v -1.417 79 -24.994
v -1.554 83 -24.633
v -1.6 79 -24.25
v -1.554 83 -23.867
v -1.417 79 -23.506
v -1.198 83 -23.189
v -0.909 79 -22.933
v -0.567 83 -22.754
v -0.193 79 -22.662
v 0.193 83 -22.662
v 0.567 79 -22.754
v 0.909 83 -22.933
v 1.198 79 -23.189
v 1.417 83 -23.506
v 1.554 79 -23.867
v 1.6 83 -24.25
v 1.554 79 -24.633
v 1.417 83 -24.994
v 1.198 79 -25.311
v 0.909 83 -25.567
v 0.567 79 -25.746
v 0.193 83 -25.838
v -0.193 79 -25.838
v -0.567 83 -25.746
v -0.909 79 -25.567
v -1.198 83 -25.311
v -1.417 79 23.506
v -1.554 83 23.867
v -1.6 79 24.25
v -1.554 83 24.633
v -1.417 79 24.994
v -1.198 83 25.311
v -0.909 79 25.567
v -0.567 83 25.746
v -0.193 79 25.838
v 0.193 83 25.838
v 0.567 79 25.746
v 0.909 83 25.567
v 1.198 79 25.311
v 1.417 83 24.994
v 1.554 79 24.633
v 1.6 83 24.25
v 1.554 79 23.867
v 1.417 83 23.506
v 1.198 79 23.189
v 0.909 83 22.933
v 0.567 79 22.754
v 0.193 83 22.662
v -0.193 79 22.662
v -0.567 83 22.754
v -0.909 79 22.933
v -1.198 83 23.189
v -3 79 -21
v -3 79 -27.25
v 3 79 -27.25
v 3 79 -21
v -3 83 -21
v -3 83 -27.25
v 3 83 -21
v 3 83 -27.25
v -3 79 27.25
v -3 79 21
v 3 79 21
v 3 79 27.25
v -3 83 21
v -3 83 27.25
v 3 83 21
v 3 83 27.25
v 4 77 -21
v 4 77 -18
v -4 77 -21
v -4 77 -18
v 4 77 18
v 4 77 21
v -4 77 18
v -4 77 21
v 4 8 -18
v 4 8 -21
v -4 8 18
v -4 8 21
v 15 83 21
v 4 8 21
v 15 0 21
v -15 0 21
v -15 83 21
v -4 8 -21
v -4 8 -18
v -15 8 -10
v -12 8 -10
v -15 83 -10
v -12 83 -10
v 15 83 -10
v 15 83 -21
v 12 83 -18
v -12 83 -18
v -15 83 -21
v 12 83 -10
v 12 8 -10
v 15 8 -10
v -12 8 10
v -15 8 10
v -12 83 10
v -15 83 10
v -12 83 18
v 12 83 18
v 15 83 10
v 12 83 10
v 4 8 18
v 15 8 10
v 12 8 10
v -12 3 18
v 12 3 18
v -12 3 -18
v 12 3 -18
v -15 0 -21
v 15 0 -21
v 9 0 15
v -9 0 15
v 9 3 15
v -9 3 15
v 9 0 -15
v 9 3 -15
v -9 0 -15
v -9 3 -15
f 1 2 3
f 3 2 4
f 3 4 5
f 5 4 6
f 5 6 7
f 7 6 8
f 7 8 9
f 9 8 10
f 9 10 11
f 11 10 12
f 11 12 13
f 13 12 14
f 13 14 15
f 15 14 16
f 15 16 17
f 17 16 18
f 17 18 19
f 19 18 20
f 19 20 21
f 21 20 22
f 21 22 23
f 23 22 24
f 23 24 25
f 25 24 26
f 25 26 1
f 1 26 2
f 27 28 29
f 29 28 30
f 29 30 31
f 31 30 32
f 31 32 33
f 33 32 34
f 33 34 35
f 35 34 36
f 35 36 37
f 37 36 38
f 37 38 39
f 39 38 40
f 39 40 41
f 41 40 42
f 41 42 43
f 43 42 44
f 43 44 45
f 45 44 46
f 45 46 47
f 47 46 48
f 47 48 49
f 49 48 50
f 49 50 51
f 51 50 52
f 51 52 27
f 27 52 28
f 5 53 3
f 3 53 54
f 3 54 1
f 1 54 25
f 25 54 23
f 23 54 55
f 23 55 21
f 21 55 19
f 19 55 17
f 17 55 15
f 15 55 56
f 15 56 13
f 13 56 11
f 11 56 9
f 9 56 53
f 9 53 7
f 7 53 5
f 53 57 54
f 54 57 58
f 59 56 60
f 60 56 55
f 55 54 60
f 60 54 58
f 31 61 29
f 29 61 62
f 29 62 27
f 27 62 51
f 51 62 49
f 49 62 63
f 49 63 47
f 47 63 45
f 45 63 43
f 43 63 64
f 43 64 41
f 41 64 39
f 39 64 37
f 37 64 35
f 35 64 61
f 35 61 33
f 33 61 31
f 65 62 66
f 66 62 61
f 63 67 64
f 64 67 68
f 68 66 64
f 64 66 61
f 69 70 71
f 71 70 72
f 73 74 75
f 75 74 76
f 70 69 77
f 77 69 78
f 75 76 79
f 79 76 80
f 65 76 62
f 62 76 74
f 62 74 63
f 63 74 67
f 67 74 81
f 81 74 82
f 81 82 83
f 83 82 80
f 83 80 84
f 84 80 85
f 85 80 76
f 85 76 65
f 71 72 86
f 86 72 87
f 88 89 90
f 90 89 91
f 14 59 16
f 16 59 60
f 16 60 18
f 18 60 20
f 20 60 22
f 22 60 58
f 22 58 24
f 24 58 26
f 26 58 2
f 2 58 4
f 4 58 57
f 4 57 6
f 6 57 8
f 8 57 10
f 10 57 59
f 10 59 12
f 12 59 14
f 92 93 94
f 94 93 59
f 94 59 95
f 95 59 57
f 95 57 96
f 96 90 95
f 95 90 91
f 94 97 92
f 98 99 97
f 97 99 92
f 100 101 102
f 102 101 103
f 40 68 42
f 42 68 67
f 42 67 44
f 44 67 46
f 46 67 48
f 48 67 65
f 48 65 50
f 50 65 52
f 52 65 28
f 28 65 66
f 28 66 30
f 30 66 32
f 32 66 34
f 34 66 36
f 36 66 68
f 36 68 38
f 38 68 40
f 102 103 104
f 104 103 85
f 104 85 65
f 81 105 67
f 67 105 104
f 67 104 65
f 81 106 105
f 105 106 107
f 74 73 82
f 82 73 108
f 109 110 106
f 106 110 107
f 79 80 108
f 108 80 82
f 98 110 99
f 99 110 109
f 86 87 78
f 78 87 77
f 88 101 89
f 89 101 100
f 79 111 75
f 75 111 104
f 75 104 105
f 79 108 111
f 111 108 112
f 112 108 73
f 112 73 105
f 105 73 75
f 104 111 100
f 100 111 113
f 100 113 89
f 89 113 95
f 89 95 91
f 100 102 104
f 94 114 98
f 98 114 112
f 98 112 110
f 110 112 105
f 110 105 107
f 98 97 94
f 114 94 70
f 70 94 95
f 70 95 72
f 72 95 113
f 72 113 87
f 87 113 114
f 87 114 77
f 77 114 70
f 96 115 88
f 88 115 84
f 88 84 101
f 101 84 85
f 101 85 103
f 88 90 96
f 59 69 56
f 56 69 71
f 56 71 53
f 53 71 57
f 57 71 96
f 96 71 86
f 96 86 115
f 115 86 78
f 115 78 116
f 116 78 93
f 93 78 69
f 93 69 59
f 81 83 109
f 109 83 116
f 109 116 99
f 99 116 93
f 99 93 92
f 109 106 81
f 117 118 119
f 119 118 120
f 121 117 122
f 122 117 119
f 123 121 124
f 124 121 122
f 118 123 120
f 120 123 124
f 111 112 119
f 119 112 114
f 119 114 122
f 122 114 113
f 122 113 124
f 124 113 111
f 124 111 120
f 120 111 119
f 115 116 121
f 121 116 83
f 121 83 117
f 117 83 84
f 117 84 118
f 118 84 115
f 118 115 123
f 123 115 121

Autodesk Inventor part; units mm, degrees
ref_plane "YZ Plane" through (0, 0, 0) normal (1, 0, 0) x (0, 1, 0)
ref_plane "XZ Plane" through (0, 0, 0) normal (0, 1, 0) x (-1, 0, 0)
ref_plane "XY Plane" through (0, 0, 0) normal (0, 0, 1) x (1, 0, 0)
sketch "Szkic1" plane through (0, 0, 0) normal (0, 1, 0) x (-1, 0, 0)
  line L0 (12, 18) -> (-12, 18)
  line L1 (-12, 18) -> (-12, -18)
  line L2 (-12, -18) -> (12, -18)
  line L3 (12, -18) -> (12, 18)
  line L4 (12, 18) -> (-12, -18) construction
  line L5 (-12, 18) -> (12, -18) construction
  line L6 (15, 21) -> (-15, 21)
  line L7 (-15, 21) -> (-15, -21)
  line L8 (-15, -21) -> (15, -21)
  line L9 (15, -21) -> (15, 21)
  line L10 (15, 21) -> (-15, -21) construction
  line L11 (-15, 21) -> (15, -21) construction
  line L12 (9, 15) -> (-9, 15)
  line L13 (-9, 15) -> (-9, -15)
  line L14 (-9, -15) -> (9, -15)
  line L15 (9, -15) -> (9, 15)
  line L16 (9, 15) -> (-9, -15) construction
  line L17 (-9, 15) -> (9, -15) construction
  point P0 (0, 0)
  dimension "d0" = 24
  dimension "d1" = 36
  dimension "d2" = 42
  dimension "d3" = 30
  dimension "d4" = 18
  dimension "d5" = 30
extrude "Wyciągnięcie proste1" add sketch "Szkic1" along normal blind 3 contours L3 L2 L1 L0
extrude "Wyciągnięcie proste2" add sketch "Szkic1" along normal blind 8 contours L9 L8 L7 L6
sketch "Szkic2" plane through (0, 8, 0) normal (0, 1, 0) x (1, 0, 0)
  line L0 (-15, 21) -> (-15, -21) projected
  line L1 (-12, -18) -> (12, -18) projected
  line L2 (-15, -21) -> (-4, -21)
  line L3 (-4, -21) -> (-4, -18)
  line L4 (-4, -18) -> (-15, -18)
  line L5 (-15, -18) -> (-15, -21)
  line L6 (-12, -18) -> (-15, -18)
  line L7 (-15, -18) -> (-15, -10)
  line L8 (-15, -10) -> (-12, -10)
  line L9 (-12, -10) -> (-12, -18)
  line L10 (-15, -21) -> (-15, -10)
  line L11 (0, 0) -> (-18.1992, 0)
  line L12 (-15, 21) -> (-4, 21)
  line L13 (-4, 21) -> (-4, 18)
  line L14 (-4, 18) -> (-15, 18)
  line L15 (-15, 10) -> (-12, 10)
  line L16 (-12, 10) -> (-12, 18)
  line L17 (4, 18) -> (15, 18)
  line L18 (4, 21) -> (4, 18)
  line L19 (15, 21) -> (4, 21)
  line L20 (15, 21) -> (15, 10)
  line L21 (15, 10) -> (12, 10)
  line L22 (12, 10) -> (12, 18)
  line L23 (12, -10) -> (12, -18)
  line L24 (15, -10) -> (12, -10)
  line L25 (4, -18) -> (15, -18)
  line L26 (15, -21) -> (4, -21)
  line L27 (4, -21) -> (4, -18)
  line L28 (15, -21) -> (15, 21) projected
  line L29 (15, -21) -> (15, -10)
  point P0 (-4, -19.5)
  point P1 (4, 19.5)
  dimension "d10" = 11
  dimension "d11" = 8
  dimension "d12" = 18.1992
  dimension "d15" = 360
extrude "Wyciągnięcie proste3" add sketch "Szkic2" along normal blind 75
sketch "Szkic3" plane through (-4, 8, 21) normal (1, 0, 0) x (0, 0, -1)
  line L0 (0, 75) -> (3, 75) projected
  line L1 (3, -5) -> (3, 75) projected
  line L2 (0, 75) -> (3, 75)
  line L3 (3, 75) -> (3, 69)
  line L4 (3, 69) -> (0, 69)
  line L5 (0, 69) -> (0, 75)
  line L6 (21, 73.1209) -> (21, -14.9491)
  line L7 (0, -8) -> (0, 75) projected
  line L8 (42, 75) -> (39, 75)
  line L9 (39, -5) -> (39, 75)
  line L10 (39, 69) -> (42, 69)
  line L11 (42, 69) -> (42, 75)
  point P0 (21, -8)
  dimension "d19" = 6
  dimension "d20" = 88.0699
  dimension "d21" = 21
extrude "Wyciągnięcie proste4" add sketch "Szkic3" along normal blind 9
sketch "Szkic7" plane through (-15, 0, 21) normal (0, 0, 1) x (1, 0, 0)
  line L0 (27, 83) -> (3, 83) projected
  line L1 (12, 83) -> (18, 83)
  line L2 (18, 83) -> (18, 79)
  line L3 (18, 79) -> (12, 79)
  line L4 (12, 79) -> (12, 83)
  line L5 (19, 8) -> (19, 77) projected
  point P0 (15, 0)
  point P1 (18, 81)
  dimension "d29" = 6
  dimension "d30" = 1
  dimension "d31" = 4
extrude "Wyciągnięcie proste6" add sketch "Szkic7" along normal blind 6.25
mirror "Odbij1" about plane through (0, 0, 0) normal (0, 0, 1) of "Wyciągnięcie proste6"
sketch "Szkic8" plane through (0, 83, 0) normal (0, 1, 0) x (1, 0, 0)
  line L0 (3, -27.25) -> (-3, -27.25) projected
  line L1 (-3, -21) -> (-3, -27.25) projected
  point P0 (0, 0)
  point P1 (0, -24.25)
  dimension "d34" = 3
  dimension "d35" = 3
hole "Otwór1" at (0, 83, 24.25) direction (0, -1, 0) diameter 3.2 end through all
mirror "Odbij2" about plane through (0, 0, 0) normal (0, 0, 1) of "Otwór1"
properties part number "mocowanie-bateria"
